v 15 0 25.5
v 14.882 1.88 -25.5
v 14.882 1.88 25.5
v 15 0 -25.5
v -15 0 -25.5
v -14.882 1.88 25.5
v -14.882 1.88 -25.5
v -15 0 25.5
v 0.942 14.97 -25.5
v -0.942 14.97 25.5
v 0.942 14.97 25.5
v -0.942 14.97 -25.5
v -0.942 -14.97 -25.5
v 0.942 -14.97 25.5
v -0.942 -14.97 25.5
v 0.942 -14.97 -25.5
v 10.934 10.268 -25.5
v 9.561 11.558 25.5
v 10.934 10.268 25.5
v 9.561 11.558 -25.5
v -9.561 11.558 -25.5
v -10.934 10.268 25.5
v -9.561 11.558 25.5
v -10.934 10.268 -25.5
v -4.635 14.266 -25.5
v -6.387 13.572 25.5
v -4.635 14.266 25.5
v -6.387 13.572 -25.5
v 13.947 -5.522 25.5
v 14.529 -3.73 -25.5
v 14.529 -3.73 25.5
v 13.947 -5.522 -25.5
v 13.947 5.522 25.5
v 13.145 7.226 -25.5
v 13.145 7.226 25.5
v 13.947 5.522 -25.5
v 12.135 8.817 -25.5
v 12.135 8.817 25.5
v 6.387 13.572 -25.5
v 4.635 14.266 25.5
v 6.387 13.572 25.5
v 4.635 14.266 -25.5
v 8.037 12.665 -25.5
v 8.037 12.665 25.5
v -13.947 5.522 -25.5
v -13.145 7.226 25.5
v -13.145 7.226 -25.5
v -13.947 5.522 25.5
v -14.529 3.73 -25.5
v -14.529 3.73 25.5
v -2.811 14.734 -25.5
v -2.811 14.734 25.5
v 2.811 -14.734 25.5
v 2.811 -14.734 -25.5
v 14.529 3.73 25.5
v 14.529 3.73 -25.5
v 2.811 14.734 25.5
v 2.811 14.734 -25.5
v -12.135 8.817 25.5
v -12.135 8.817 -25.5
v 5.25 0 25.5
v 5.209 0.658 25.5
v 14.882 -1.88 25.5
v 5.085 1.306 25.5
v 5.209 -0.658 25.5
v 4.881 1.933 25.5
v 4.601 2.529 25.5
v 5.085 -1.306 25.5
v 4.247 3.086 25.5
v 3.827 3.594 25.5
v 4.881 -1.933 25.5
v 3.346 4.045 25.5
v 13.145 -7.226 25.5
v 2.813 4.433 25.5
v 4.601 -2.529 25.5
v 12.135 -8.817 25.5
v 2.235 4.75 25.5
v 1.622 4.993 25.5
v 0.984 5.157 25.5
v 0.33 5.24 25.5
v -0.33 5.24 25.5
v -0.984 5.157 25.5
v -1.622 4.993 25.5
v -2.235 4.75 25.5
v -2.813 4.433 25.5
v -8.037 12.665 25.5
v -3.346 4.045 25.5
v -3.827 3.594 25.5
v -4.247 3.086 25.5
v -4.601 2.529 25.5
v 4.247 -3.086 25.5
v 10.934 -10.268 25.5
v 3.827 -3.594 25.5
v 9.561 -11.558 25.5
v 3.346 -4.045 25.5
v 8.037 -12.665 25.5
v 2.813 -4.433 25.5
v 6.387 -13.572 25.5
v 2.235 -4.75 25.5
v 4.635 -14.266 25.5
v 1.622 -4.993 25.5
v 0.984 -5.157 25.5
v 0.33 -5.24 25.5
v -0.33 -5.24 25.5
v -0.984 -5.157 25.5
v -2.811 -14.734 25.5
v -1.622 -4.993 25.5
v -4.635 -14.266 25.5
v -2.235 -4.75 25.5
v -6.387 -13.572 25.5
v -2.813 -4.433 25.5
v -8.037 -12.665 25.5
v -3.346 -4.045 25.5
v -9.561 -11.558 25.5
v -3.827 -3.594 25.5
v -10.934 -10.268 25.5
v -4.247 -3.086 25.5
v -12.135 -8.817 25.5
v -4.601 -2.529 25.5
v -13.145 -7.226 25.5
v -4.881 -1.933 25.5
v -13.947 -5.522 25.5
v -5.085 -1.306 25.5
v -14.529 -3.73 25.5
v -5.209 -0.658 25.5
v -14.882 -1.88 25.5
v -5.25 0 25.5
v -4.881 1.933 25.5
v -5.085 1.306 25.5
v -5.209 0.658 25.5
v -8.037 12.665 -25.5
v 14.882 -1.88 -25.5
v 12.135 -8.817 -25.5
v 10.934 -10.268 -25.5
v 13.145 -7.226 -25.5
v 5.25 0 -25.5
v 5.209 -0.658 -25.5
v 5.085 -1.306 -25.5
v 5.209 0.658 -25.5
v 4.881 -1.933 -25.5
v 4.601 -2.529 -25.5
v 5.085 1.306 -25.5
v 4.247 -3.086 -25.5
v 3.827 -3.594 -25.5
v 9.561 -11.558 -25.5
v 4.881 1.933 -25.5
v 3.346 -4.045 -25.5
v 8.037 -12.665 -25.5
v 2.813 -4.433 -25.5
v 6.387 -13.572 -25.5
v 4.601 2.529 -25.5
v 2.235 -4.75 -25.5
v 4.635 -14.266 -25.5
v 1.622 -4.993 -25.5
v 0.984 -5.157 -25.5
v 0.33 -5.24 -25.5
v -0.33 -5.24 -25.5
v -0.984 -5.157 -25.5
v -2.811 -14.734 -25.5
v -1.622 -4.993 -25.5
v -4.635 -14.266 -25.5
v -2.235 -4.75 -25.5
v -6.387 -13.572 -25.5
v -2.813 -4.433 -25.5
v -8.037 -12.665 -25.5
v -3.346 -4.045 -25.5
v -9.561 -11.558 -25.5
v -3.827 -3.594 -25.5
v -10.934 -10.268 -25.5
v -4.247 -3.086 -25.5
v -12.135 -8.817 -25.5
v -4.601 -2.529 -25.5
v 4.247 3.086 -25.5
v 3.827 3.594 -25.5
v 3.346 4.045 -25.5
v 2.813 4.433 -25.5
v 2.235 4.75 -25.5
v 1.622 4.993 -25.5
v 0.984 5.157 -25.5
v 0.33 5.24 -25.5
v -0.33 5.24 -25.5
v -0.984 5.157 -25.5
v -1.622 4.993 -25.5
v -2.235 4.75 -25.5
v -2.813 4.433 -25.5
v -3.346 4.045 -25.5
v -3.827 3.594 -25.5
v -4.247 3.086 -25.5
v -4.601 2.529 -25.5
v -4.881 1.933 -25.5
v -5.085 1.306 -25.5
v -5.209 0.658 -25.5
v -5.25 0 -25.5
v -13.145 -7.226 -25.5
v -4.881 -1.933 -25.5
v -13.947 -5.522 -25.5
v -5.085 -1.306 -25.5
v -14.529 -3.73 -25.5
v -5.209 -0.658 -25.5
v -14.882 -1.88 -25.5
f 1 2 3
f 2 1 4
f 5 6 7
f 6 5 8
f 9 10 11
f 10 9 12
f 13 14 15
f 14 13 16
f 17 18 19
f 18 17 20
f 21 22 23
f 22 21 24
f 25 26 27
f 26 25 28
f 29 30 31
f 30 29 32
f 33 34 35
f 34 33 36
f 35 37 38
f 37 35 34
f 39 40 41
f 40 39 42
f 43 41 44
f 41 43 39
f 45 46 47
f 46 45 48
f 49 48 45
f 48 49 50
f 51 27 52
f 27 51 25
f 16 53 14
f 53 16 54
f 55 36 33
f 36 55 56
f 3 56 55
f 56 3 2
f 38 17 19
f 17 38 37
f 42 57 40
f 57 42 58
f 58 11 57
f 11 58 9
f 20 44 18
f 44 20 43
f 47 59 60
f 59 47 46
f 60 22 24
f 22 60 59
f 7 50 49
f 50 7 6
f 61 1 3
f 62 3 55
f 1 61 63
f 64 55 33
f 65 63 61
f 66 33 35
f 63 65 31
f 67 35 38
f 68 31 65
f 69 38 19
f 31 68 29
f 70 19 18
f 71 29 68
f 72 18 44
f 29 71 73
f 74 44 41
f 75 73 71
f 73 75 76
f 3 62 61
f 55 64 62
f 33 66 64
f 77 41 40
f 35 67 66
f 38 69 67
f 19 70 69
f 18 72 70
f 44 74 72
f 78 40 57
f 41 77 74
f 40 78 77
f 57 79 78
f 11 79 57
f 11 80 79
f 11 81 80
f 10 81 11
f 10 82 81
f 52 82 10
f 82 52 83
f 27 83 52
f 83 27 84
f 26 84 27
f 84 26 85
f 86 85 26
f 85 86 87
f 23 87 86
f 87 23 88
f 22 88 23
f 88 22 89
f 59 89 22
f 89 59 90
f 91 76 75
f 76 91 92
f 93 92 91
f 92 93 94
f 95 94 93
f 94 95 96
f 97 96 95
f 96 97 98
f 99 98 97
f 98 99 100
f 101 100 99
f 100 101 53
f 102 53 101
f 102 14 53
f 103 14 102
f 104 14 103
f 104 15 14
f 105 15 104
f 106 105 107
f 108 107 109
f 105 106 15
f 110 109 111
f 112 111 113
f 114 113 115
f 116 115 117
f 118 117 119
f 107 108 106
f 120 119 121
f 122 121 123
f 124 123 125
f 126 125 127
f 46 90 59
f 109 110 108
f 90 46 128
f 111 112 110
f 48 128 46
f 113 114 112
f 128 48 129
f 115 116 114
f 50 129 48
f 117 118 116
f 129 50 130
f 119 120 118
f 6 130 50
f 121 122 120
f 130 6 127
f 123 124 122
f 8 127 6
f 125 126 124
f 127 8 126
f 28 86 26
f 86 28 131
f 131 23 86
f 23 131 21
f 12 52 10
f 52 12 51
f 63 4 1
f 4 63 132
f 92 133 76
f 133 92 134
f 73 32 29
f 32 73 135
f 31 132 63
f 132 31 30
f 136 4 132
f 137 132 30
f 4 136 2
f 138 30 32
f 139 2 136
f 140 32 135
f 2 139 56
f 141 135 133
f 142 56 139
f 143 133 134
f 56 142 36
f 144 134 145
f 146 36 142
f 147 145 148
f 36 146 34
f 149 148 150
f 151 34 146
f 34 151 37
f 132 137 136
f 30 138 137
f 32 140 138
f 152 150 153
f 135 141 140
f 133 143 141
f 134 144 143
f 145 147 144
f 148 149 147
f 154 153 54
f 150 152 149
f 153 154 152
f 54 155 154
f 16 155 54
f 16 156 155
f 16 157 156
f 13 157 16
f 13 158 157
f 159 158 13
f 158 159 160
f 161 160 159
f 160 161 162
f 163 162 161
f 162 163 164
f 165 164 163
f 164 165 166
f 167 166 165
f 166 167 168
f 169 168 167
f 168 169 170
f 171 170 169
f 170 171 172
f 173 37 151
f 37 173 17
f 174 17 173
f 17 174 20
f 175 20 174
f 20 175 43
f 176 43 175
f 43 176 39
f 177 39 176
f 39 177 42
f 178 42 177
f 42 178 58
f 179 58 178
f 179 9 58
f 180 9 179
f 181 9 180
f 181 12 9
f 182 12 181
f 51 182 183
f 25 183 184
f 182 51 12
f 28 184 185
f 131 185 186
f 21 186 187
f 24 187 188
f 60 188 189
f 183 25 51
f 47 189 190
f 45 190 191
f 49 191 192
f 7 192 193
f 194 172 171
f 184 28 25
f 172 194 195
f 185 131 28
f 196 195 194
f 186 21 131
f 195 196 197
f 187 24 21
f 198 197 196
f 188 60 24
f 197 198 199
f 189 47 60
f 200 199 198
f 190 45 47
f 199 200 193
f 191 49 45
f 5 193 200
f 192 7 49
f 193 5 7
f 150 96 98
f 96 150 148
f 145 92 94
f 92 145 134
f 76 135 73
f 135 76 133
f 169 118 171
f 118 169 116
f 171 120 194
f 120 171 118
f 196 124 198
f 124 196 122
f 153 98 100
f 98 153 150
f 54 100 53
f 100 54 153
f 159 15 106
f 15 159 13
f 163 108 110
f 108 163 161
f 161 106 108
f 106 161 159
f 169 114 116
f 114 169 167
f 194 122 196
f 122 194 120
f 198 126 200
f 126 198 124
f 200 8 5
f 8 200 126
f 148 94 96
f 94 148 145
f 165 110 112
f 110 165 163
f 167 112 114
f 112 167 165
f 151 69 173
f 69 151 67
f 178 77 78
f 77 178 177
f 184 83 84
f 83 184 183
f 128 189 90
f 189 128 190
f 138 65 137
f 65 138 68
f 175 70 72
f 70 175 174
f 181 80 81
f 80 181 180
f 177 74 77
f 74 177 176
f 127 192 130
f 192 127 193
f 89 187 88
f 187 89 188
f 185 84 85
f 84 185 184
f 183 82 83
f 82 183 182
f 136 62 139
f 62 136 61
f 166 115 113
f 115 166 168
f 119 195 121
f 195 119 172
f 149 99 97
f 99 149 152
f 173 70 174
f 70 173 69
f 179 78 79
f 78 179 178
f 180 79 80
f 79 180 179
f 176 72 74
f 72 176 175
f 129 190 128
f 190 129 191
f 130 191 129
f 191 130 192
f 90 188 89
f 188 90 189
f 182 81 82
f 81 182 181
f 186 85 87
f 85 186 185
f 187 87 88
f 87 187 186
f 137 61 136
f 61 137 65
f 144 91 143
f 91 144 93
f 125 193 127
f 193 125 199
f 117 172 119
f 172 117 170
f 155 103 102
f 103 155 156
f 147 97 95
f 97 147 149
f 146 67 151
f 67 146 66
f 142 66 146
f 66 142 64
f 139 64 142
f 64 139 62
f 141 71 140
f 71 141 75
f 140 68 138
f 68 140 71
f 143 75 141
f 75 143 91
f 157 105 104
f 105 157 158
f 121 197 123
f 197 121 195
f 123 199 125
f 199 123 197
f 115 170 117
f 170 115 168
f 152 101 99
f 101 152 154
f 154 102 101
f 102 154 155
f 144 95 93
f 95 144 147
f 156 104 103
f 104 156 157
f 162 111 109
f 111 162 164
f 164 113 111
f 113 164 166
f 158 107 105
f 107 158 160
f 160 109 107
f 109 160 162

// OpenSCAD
$fn = 50;


difference() {
	union() {
		translate(v = [0, 0, -25.5000000000]) {
			cylinder(h = 51, r = 15.0000000000);
		}
	}
	union() {
		translate(v = [0, 0, -100.0000000000]) {
			cylinder(h = 200, r = 5.2500000000);
		}
	}
}
